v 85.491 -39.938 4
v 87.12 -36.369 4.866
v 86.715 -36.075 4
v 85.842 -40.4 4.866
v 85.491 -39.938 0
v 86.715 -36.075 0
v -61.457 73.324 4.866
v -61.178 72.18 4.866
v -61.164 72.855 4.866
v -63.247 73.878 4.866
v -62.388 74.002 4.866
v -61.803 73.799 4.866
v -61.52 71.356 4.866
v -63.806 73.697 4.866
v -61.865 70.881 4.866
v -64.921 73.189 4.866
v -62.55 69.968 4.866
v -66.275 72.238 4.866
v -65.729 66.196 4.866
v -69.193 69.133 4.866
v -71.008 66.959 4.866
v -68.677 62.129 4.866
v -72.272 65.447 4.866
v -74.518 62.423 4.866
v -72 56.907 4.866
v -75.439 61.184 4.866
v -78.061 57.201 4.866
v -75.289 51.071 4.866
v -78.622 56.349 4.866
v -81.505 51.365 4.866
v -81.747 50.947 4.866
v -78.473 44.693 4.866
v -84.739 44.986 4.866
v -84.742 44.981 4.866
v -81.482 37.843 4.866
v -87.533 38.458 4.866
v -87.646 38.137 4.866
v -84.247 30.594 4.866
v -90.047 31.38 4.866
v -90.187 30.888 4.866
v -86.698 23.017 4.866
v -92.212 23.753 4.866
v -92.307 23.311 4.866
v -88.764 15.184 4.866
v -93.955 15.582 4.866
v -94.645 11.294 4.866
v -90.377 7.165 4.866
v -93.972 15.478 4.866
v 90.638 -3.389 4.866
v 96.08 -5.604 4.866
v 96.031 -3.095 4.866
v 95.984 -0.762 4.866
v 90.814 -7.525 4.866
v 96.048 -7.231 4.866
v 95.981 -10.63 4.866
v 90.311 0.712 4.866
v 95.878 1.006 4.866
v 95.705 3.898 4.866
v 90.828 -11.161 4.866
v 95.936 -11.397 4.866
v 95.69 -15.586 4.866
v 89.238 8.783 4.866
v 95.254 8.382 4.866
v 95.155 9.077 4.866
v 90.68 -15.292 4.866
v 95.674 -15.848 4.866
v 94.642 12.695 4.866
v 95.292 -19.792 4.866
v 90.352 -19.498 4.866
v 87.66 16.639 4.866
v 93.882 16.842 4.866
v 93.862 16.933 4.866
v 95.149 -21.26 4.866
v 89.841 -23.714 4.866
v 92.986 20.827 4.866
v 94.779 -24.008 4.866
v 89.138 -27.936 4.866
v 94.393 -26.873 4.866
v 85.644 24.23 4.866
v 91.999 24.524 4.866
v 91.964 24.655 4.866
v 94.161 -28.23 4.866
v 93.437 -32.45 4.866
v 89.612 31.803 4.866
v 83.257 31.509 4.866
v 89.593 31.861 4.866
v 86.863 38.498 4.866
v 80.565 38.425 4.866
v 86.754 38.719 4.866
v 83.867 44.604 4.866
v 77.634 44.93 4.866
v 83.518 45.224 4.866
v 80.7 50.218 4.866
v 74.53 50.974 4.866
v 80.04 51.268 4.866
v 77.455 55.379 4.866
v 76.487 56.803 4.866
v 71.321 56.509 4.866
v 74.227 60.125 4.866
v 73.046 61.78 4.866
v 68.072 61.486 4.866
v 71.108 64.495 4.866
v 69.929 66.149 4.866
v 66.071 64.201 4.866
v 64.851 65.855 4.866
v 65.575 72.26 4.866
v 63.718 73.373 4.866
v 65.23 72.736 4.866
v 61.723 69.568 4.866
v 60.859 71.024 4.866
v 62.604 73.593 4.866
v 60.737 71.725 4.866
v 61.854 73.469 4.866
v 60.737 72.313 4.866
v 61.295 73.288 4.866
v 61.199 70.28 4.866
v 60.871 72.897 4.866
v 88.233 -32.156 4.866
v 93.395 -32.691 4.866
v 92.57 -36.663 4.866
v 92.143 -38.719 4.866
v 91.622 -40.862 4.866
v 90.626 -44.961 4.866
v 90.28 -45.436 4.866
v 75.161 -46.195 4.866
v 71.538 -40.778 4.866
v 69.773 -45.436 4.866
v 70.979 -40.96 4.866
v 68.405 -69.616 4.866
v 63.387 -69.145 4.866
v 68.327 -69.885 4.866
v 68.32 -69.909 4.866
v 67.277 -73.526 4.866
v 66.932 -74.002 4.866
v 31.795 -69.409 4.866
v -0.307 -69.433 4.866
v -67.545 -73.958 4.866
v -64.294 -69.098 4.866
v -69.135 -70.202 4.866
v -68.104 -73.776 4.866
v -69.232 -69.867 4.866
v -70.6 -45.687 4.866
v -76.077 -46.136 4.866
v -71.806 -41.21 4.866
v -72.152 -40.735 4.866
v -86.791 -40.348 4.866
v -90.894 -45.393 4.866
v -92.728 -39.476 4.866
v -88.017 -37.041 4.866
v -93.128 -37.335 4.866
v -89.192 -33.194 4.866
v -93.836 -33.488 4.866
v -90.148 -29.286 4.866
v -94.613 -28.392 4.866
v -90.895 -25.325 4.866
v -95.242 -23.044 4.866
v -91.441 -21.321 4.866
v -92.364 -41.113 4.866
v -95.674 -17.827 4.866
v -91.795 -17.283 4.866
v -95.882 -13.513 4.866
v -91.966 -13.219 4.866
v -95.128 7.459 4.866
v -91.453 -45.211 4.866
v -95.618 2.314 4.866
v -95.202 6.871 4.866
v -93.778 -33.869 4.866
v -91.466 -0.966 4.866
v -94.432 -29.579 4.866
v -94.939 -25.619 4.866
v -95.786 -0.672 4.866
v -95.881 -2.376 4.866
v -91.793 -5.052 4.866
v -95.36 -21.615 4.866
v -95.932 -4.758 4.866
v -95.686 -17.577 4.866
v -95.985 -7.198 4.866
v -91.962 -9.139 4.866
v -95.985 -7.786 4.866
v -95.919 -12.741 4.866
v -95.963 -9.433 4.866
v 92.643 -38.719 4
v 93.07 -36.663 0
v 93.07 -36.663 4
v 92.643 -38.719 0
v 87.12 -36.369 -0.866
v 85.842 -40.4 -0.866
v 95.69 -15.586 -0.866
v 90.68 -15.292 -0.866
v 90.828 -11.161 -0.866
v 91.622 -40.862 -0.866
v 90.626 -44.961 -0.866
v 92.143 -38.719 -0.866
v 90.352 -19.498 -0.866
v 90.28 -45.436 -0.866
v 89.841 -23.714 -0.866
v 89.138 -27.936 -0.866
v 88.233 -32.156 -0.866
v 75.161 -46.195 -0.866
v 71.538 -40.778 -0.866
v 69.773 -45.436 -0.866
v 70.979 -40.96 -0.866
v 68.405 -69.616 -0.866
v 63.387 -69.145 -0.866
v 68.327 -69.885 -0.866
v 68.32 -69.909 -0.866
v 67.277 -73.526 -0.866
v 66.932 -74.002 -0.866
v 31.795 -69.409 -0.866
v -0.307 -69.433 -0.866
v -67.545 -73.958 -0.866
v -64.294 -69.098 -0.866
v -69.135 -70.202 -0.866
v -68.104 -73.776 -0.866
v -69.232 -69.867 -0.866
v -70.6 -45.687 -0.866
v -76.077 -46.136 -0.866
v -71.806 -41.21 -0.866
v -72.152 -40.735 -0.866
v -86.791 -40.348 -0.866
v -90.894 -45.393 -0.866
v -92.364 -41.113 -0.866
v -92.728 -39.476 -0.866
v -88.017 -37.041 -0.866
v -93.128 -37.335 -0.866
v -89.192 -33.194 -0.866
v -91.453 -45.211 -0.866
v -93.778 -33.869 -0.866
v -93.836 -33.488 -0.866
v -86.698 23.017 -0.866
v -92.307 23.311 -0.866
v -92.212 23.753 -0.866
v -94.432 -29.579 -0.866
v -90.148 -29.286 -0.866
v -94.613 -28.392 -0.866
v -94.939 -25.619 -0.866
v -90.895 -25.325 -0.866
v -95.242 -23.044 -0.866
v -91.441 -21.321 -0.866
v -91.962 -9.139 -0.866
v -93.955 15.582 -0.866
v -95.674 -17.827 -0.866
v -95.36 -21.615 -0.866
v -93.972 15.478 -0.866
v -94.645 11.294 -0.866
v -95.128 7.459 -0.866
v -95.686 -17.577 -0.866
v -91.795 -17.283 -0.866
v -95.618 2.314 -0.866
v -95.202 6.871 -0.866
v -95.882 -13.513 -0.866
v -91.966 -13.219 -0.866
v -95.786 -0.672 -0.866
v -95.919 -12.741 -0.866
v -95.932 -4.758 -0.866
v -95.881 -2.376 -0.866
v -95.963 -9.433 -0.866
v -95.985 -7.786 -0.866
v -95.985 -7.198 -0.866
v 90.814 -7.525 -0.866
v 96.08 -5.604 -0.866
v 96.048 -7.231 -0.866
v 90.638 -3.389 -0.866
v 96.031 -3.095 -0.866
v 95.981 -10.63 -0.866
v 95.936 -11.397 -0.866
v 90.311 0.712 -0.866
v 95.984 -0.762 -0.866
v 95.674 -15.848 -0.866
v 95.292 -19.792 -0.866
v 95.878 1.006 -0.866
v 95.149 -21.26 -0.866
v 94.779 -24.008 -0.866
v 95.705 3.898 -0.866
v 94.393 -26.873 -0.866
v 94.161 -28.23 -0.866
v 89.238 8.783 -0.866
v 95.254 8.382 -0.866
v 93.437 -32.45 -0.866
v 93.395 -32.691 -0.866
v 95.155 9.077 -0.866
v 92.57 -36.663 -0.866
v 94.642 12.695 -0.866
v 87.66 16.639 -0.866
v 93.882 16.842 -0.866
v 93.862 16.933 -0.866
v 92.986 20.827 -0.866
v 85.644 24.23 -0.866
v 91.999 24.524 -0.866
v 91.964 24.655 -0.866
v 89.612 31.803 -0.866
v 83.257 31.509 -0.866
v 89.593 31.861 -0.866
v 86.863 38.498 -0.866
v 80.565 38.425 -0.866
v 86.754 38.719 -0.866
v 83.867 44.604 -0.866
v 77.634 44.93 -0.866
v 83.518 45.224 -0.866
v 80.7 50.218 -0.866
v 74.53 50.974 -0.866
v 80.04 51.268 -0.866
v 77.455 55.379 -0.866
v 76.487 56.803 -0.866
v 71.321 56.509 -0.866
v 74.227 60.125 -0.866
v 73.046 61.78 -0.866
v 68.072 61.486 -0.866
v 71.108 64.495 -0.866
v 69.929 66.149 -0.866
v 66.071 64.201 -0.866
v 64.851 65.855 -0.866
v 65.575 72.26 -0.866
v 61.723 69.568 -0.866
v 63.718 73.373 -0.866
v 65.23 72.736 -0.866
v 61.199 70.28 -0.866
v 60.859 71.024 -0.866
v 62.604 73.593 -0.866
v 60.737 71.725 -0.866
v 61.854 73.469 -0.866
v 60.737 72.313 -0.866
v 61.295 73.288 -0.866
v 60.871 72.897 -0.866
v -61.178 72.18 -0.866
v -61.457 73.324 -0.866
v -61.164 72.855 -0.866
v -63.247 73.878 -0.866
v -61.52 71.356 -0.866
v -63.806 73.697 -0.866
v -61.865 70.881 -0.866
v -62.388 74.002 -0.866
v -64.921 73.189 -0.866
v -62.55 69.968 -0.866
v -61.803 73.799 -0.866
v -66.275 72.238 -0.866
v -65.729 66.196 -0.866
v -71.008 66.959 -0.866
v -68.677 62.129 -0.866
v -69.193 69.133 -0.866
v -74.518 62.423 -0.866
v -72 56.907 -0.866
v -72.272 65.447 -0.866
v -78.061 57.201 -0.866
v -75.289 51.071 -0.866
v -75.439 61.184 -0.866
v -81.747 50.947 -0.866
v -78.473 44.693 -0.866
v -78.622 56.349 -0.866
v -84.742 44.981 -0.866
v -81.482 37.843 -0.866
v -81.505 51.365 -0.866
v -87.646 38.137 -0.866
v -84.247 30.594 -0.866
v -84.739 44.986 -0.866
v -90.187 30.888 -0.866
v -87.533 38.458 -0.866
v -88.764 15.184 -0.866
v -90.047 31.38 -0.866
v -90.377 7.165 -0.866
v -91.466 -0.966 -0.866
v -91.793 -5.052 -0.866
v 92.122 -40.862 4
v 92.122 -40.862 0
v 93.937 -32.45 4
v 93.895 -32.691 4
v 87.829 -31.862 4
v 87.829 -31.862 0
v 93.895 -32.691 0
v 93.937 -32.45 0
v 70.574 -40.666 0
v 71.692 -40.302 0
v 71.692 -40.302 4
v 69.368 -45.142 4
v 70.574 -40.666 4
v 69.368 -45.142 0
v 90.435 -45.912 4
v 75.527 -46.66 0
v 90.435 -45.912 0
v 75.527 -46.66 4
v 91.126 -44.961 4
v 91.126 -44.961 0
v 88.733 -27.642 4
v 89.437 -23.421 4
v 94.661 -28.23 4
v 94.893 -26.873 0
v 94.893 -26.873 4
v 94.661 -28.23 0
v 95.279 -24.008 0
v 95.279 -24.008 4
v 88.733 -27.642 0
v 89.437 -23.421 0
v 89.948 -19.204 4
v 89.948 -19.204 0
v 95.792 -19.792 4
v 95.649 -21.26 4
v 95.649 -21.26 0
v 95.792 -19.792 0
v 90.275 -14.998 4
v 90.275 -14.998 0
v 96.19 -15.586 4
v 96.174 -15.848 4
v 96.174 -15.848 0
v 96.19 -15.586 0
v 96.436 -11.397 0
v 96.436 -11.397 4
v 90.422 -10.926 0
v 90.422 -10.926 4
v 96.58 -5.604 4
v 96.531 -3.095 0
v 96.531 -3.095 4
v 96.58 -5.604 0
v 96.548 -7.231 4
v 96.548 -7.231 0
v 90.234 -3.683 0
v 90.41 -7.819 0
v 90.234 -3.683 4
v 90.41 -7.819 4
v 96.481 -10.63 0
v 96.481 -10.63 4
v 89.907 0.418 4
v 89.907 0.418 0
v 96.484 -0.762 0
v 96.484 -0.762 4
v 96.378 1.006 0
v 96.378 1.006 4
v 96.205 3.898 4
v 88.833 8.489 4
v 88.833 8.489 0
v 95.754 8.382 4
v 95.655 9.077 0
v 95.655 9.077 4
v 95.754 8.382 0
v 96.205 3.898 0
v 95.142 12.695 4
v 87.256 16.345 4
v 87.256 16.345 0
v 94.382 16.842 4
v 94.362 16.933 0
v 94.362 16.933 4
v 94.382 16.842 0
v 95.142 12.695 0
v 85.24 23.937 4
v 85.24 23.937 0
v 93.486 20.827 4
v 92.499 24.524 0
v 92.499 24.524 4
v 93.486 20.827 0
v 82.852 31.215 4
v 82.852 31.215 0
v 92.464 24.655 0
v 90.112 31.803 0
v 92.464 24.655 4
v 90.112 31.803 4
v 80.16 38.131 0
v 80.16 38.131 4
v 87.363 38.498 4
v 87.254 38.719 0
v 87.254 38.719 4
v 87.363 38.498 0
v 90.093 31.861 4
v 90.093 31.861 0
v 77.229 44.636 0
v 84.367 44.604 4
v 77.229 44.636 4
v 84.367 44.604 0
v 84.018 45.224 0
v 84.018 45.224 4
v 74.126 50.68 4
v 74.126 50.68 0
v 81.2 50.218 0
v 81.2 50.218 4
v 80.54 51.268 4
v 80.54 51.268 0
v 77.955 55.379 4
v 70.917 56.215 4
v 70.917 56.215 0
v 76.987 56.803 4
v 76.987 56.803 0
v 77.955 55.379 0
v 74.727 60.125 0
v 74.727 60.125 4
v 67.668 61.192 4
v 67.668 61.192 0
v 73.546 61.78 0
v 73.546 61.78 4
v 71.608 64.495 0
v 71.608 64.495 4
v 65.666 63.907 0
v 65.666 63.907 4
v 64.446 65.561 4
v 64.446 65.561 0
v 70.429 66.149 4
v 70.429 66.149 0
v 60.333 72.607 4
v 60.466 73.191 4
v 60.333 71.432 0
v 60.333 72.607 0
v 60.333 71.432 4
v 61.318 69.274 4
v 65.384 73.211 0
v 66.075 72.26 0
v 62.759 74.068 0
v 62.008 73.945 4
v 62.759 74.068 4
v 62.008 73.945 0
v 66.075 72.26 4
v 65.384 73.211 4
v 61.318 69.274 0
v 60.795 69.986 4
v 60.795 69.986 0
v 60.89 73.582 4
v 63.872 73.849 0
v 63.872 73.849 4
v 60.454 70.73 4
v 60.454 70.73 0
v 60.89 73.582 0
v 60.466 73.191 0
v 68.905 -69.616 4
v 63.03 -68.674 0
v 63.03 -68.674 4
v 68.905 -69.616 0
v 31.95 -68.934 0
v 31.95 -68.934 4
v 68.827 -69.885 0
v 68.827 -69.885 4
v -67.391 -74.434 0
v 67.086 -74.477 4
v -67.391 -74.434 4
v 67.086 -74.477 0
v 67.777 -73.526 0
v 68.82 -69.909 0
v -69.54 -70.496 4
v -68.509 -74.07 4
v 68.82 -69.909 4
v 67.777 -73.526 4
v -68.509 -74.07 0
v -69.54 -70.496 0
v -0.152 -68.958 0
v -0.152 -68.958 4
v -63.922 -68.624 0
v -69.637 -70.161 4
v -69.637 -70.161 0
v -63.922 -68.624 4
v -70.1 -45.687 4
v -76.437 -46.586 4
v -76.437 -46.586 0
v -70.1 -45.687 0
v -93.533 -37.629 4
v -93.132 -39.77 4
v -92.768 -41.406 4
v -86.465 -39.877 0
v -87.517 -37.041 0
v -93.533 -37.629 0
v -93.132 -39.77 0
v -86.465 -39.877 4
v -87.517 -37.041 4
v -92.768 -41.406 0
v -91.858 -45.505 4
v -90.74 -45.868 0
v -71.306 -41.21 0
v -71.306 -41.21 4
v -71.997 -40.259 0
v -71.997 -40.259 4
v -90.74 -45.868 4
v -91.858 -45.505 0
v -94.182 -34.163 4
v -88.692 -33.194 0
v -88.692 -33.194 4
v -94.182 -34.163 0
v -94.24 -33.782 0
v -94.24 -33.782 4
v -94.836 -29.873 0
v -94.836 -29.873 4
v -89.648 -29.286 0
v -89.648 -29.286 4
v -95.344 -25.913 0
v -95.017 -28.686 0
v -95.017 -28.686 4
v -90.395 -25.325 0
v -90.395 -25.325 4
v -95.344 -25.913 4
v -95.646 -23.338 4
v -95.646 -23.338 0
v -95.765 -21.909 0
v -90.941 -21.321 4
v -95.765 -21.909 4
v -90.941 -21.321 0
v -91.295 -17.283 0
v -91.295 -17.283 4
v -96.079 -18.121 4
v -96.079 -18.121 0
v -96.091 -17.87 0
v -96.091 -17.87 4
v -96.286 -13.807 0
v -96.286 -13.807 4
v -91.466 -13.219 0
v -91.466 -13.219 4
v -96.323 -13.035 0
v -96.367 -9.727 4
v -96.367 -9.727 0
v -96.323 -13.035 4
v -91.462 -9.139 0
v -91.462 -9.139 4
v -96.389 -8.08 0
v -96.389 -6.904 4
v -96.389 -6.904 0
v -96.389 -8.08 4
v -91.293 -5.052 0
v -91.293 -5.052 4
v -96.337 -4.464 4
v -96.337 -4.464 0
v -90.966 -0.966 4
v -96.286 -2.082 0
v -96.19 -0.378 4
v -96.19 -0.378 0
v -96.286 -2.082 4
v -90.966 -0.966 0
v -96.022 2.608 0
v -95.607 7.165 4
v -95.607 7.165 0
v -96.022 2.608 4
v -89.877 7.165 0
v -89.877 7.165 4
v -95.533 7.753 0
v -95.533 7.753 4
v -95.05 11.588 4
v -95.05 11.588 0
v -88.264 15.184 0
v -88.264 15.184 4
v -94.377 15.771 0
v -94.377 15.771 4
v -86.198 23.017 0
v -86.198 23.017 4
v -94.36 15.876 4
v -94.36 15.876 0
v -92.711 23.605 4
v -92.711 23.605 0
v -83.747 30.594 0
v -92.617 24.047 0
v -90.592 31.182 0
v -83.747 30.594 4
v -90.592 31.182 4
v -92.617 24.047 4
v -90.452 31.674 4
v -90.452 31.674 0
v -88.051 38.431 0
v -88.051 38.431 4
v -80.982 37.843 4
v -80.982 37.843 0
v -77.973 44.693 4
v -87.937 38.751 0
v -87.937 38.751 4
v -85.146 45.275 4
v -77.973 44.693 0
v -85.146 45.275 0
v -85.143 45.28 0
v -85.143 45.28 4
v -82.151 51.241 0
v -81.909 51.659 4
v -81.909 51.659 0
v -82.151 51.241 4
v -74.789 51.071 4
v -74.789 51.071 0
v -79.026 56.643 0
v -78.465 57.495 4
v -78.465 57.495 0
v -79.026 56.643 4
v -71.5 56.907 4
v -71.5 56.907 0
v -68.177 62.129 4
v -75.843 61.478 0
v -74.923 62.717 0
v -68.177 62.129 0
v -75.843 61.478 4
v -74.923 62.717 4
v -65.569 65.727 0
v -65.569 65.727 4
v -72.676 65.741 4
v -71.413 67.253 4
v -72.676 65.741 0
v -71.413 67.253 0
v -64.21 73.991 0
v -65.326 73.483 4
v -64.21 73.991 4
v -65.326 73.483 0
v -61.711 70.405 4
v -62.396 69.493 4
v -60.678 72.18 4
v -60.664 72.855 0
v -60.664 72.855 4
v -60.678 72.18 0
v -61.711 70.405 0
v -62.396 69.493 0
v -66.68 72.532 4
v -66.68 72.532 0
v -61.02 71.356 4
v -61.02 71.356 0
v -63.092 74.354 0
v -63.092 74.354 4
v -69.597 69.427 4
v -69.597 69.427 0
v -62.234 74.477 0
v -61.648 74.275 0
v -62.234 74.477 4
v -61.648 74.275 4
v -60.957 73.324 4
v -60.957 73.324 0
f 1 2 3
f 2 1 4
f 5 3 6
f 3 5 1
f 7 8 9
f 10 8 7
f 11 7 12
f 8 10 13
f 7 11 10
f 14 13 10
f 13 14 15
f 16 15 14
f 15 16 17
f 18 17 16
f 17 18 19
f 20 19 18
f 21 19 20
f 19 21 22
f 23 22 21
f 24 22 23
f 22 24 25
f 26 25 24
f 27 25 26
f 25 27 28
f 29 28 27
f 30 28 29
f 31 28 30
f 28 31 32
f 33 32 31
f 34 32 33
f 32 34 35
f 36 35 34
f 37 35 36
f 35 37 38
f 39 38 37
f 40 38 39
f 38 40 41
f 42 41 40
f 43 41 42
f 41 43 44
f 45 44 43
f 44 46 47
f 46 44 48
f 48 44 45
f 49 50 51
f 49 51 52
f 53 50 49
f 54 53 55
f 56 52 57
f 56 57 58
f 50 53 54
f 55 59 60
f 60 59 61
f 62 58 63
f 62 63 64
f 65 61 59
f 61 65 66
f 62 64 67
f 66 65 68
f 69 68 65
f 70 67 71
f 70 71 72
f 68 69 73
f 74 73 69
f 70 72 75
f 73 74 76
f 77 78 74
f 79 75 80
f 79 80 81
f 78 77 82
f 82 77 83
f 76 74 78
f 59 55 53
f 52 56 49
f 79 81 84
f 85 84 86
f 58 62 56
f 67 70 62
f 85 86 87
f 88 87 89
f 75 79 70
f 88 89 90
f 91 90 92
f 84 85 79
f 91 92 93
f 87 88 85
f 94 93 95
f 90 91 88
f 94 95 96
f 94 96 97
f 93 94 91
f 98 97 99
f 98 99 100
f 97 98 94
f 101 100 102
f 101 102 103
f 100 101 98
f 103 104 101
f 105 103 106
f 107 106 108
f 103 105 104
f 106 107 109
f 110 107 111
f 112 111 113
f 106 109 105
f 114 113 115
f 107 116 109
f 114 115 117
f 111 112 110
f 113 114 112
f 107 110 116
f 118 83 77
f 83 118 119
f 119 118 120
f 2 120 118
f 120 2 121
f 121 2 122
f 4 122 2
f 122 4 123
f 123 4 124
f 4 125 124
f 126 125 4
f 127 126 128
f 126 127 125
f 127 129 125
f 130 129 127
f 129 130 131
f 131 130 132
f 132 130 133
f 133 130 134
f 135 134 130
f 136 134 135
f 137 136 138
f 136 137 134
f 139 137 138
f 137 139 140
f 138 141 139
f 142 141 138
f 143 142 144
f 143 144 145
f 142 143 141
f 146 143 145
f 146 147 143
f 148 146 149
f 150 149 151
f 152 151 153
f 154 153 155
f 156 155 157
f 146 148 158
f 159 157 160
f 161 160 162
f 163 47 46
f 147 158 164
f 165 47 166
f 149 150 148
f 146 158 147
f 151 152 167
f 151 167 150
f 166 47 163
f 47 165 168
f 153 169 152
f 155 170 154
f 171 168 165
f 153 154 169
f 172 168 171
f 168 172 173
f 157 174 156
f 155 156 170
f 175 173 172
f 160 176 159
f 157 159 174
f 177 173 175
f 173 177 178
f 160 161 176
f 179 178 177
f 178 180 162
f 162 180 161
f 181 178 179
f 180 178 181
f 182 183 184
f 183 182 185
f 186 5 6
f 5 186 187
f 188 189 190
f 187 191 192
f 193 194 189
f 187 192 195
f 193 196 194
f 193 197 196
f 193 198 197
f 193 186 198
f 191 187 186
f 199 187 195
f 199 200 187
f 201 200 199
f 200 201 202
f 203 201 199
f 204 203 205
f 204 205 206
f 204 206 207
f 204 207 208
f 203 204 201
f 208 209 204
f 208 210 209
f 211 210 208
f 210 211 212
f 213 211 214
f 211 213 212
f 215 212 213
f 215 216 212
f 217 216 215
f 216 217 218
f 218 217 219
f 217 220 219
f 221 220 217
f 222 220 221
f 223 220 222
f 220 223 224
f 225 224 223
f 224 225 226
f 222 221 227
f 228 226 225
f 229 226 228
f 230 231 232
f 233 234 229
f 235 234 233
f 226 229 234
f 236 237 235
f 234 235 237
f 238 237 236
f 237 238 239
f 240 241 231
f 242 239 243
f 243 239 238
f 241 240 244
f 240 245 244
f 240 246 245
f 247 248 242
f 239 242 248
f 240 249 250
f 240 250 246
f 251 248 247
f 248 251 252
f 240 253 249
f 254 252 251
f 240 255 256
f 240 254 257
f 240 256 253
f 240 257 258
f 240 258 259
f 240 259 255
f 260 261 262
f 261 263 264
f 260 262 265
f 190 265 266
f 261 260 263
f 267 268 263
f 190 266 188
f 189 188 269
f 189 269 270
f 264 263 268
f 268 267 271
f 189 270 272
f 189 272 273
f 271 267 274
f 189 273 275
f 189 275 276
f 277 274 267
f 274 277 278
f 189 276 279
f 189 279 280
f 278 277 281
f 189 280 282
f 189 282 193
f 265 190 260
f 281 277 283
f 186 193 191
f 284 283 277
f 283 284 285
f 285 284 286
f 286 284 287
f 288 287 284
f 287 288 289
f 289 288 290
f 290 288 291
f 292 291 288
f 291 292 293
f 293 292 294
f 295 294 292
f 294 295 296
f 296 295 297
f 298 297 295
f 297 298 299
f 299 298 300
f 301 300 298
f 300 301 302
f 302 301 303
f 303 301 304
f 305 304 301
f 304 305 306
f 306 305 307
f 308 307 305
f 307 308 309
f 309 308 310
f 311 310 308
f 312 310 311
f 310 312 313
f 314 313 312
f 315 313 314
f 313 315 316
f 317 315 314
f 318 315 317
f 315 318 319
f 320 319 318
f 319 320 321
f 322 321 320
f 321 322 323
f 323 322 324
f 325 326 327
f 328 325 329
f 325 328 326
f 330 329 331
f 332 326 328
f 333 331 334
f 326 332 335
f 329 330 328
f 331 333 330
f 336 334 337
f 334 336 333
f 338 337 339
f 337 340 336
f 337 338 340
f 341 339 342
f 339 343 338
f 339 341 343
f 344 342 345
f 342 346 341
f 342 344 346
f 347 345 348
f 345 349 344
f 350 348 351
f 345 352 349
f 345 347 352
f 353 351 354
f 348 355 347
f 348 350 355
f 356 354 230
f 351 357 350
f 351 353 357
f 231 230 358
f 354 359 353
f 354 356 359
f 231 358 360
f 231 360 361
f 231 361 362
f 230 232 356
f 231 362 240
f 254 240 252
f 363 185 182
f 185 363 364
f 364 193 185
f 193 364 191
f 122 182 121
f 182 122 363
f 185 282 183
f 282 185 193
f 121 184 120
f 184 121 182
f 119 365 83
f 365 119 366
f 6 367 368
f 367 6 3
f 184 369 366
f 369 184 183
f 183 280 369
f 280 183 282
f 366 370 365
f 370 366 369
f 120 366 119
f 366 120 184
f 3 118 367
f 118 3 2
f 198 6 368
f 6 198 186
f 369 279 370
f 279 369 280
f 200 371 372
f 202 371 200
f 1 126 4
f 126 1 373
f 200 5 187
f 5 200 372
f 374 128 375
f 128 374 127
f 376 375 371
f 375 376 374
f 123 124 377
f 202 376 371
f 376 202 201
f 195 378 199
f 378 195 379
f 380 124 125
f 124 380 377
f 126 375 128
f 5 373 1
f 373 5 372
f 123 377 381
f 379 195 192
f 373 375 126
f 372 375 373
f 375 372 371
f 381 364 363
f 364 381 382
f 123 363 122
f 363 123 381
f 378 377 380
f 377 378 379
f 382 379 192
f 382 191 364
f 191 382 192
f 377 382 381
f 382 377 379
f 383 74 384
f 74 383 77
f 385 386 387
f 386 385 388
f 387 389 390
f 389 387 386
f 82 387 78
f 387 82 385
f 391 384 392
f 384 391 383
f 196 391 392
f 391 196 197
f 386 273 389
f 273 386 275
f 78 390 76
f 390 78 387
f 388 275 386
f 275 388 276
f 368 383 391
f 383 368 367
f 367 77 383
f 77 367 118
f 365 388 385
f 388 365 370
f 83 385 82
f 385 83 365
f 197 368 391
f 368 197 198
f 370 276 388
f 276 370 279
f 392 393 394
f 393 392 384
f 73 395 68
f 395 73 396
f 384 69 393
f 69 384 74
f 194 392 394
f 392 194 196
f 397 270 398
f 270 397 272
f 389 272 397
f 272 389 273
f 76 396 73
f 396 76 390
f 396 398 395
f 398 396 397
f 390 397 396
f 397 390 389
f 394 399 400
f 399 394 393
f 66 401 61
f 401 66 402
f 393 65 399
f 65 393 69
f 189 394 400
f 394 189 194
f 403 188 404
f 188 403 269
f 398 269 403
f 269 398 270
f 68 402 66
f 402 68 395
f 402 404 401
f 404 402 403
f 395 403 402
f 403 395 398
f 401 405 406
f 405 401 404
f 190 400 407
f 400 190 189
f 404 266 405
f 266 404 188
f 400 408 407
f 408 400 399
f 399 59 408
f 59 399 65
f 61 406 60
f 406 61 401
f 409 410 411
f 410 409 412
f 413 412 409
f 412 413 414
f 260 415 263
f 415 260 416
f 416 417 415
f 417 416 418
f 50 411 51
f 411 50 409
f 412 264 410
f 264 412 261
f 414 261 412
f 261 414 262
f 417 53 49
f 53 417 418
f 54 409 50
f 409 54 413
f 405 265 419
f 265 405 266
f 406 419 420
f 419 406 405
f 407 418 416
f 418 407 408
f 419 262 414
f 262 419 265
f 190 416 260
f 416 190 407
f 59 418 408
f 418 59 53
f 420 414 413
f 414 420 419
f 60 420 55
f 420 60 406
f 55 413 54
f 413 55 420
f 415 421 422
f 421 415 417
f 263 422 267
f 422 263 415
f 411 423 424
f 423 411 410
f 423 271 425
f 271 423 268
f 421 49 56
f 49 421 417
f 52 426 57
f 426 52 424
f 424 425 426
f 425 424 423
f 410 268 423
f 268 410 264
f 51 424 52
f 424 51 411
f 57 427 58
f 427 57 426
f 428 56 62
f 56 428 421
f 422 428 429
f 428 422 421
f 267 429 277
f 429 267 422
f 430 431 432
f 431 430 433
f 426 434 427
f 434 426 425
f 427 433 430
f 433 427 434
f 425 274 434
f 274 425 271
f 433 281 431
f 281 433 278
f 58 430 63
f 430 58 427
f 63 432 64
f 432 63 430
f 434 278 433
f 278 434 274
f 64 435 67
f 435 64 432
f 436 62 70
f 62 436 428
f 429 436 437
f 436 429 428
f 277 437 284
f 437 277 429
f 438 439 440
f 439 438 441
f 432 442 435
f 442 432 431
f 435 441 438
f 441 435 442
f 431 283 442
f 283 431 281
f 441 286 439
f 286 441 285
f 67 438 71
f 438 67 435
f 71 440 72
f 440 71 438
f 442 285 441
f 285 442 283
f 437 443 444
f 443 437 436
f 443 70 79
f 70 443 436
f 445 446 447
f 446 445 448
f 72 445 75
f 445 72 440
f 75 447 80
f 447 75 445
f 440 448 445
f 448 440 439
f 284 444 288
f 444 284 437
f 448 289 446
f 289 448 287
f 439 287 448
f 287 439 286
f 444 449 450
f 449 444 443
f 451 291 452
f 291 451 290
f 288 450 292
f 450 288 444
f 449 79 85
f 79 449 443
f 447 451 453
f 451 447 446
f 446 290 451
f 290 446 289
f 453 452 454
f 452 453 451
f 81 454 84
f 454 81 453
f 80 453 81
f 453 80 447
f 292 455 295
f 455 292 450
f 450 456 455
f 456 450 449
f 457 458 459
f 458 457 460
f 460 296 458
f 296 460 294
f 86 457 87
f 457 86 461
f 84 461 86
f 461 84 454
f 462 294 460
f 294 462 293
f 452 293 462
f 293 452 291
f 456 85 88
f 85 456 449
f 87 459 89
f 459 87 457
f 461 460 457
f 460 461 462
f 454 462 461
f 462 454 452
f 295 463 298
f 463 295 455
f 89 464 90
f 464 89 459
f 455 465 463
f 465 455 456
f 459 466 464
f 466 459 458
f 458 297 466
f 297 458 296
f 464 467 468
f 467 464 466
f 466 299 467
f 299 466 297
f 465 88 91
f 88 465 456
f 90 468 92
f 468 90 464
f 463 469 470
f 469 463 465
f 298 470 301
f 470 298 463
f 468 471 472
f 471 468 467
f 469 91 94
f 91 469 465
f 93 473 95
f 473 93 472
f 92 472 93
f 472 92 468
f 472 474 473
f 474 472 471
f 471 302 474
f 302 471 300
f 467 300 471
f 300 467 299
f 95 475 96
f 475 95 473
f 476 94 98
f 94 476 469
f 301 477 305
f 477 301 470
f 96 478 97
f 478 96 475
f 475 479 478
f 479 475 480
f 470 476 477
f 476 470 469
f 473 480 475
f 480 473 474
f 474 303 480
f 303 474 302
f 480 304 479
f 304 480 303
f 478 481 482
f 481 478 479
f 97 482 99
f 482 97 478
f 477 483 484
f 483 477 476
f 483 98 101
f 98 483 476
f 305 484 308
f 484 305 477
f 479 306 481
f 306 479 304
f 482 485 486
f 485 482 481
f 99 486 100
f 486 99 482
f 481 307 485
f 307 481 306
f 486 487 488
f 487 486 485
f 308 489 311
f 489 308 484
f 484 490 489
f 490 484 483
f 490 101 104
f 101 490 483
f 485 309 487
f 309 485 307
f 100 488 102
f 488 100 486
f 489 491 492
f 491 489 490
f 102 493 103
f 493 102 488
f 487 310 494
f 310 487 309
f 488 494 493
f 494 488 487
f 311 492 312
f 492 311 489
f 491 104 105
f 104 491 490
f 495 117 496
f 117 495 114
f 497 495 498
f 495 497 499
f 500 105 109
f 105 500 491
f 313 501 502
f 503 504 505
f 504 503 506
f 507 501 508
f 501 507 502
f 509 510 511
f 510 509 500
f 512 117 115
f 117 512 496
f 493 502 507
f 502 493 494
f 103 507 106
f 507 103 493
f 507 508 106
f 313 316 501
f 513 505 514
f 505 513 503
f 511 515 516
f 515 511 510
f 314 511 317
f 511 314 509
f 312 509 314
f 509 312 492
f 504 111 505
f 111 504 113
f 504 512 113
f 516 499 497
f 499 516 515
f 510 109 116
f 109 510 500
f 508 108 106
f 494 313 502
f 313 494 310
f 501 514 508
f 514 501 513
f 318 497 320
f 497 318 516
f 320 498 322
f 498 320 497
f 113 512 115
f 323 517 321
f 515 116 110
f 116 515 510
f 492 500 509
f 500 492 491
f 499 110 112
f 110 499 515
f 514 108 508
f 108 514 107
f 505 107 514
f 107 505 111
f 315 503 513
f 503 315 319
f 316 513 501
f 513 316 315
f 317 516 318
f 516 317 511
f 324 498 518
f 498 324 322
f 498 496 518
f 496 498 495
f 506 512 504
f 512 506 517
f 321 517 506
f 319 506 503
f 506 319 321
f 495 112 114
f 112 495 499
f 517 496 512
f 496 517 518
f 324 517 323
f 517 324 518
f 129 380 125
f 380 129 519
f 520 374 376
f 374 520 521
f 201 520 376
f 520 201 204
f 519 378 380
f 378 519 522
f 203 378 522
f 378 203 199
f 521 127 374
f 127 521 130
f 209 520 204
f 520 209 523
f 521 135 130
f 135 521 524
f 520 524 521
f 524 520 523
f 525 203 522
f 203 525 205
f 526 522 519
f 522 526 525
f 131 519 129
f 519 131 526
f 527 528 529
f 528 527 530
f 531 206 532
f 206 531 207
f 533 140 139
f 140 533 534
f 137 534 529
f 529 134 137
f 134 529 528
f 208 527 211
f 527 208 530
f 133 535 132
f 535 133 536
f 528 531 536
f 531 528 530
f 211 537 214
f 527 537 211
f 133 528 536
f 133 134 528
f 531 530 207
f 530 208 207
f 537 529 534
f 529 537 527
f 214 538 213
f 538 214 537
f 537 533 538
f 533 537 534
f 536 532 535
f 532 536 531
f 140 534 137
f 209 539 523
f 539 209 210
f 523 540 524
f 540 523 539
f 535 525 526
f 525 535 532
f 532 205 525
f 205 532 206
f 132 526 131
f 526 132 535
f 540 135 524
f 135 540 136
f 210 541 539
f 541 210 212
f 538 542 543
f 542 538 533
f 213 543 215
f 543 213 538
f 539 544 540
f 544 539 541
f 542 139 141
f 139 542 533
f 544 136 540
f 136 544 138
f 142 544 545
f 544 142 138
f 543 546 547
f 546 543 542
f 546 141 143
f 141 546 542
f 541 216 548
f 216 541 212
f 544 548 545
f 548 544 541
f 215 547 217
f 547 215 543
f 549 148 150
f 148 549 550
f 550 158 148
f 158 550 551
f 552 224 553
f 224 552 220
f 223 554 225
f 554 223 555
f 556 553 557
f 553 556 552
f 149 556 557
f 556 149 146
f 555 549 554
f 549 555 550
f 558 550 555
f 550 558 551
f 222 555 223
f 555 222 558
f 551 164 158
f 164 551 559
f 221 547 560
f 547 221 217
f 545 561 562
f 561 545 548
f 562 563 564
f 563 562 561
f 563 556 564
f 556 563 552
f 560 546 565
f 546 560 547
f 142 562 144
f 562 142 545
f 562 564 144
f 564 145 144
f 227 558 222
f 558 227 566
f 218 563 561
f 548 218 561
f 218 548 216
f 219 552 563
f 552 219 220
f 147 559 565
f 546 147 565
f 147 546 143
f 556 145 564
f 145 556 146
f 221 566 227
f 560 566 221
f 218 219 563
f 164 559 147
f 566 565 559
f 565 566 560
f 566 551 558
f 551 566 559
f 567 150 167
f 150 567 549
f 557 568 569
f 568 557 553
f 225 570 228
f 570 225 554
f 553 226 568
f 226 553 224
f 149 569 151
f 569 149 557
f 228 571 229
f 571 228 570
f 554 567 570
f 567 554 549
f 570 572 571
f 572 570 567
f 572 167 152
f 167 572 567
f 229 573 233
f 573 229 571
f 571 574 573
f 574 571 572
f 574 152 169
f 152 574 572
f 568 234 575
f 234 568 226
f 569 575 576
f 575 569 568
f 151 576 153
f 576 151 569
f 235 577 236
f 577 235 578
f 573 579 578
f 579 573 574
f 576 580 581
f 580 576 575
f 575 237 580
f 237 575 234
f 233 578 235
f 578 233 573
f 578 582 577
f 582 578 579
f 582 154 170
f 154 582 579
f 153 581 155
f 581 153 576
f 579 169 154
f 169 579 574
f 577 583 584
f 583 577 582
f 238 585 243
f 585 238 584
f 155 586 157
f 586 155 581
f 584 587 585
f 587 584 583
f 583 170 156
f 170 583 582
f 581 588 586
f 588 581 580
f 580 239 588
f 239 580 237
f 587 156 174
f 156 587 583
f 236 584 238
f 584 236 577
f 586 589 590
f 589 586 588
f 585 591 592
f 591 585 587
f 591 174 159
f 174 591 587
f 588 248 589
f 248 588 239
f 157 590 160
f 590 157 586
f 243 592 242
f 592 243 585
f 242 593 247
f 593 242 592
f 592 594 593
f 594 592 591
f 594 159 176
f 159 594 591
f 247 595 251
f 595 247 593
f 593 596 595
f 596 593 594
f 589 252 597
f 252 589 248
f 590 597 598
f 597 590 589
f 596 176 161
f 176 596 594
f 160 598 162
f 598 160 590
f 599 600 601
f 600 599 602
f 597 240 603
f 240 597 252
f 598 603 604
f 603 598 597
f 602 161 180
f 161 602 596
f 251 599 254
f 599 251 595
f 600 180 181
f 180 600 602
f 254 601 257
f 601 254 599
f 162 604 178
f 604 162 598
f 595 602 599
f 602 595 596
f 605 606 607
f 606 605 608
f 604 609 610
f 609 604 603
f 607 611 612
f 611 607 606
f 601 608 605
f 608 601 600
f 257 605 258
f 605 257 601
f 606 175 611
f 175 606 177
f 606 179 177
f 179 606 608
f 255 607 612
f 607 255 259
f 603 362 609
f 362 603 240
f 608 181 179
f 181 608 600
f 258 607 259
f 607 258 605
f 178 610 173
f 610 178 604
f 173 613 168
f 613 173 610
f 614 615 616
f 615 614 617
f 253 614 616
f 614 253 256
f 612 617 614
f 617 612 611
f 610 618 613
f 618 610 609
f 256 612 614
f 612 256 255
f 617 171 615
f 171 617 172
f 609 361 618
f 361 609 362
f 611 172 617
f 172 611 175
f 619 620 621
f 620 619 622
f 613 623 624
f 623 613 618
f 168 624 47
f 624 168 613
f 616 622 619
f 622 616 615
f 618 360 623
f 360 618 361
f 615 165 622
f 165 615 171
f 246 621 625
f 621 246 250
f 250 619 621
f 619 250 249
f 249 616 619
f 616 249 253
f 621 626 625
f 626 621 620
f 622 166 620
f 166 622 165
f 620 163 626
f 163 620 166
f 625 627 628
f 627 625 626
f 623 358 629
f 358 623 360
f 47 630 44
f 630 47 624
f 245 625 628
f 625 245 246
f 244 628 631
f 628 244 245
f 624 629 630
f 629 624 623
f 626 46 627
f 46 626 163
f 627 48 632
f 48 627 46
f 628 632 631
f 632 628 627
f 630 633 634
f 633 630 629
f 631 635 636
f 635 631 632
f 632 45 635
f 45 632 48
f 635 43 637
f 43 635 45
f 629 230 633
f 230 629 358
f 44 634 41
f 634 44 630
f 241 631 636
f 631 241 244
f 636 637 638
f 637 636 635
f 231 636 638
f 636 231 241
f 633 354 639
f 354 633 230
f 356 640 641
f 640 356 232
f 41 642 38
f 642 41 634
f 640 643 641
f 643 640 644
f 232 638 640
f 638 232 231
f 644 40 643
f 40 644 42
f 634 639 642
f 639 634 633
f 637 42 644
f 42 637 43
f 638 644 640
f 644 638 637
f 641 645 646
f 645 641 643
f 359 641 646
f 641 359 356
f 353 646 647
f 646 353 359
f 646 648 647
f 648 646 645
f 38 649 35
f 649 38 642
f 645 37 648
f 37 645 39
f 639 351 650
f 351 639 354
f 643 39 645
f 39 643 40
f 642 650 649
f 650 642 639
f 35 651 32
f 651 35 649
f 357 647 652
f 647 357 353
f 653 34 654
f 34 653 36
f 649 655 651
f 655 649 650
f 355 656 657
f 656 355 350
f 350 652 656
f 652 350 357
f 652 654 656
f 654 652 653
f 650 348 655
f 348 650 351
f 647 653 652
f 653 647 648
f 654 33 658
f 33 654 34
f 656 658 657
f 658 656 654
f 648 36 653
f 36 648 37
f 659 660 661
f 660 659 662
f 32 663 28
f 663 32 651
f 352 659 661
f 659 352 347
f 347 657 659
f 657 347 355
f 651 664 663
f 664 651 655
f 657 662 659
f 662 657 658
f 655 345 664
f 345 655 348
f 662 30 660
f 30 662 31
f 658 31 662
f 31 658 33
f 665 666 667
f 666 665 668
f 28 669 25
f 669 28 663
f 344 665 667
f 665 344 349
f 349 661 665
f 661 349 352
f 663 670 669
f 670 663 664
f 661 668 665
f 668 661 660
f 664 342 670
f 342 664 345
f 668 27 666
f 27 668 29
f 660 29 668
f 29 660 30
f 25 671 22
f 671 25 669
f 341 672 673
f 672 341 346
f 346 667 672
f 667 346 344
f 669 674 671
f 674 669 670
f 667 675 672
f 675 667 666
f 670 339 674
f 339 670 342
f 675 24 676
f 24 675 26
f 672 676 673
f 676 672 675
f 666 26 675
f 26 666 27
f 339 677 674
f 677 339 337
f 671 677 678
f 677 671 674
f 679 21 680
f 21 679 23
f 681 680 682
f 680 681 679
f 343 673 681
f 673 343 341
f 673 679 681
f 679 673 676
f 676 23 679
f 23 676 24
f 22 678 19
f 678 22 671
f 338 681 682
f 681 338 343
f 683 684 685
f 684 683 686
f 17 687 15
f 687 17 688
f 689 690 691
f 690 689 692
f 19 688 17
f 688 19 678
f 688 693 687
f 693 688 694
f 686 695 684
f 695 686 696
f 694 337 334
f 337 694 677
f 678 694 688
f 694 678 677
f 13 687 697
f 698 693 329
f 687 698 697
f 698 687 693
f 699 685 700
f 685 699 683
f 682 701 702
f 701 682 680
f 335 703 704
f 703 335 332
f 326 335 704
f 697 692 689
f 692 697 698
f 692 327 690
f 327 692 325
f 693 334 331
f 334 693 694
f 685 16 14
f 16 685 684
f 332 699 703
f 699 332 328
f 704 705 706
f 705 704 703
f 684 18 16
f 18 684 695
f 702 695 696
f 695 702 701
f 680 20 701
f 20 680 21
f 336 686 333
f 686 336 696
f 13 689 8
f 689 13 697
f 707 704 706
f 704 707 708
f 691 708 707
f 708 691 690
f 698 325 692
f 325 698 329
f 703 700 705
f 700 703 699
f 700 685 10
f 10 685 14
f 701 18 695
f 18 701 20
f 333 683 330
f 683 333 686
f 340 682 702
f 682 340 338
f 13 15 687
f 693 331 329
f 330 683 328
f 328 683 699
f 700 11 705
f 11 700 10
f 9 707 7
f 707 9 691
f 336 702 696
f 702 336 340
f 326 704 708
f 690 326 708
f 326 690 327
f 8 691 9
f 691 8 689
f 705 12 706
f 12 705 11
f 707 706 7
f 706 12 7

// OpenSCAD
// Module names are of the form poly_<inkscape-path-id>().  As a result,
// you can associate a polygon in this OpenSCAD program with the corresponding
// SVG element in the Inkscape document by looking for the XML element with
// the attribute id="inkscape-path-id".

// fudge value is used to ensure that subtracted solids are a tad taller
// in the z dimension than the polygon being subtracted from.  This helps
// keep the resulting .stl file manifold.
fudge = 0.1;

module poly_path389047(h)
{
  //scale([25.4/90, -25.4/90, 1]) union()
  {
    linear_extrude(height=h)
      polygon([[-64.666156,-69.572941],[-72.306264,-41.210110],[-87.115855,-40.818693],[-88.517178,-37.041371],[-89.691618,-33.193990],[-90.647899,-29.285495],[-91.394749,-25.324829],[-91.940893,-21.320935],[-92.295057,-17.282758],[-92.465967,-13.219240],[-92.462349,-9.139326],[-92.292929,-5.051959],[-91.966433,-0.966084],[-90.877115,7.165420],[-89.264204,15.183636],[-87.197505,23.017014],[-84.746828,30.594005],[-81.981979,37.843060],[-78.972765,44.692629],[-75.788995,51.071163],[-72.500474,56.907113],[-69.177011,62.128928],[-65.888414,66.665060],[-62.704488,70.443958],[-62.019617,71.356243],[-61.678468,72.179742],[-61.663554,72.855304],[-61.957393,73.323776],[-62.542498,73.526007],[-63.401385,73.402843],[-64.516570,72.895135],[-65.870568,71.943728],[-68.788092,68.839026],[-71.867010,65.152984],[-75.034339,60.890201],[-78.217099,56.055274],[-81.342309,50.652802],[-84.336986,44.687383],[-87.128149,38.163614],[-89.642817,31.086094],[-91.808008,23.459421],[-93.550742,15.288192],[-94.240880,10.999807],[-94.798035,6.577006],[-95.213085,2.020367],[-95.476908,-2.669538],[-95.580379,-7.492134],[-95.514378,-12.446844],[-95.269780,-17.533096],[-94.837464,-22.750313],[-94.208306,-28.097922],[-93.373184,-33.575347],[-92.322976,-39.182014],[-91.048558,-44.917349],[-75.717862,-45.686736],[-67.699777,-73.482607],[66.776952,-73.526007],[74.795022,-45.730136],[90.125722,-44.960749],[91.643366,-38.718567],[92.895330,-32.691002],[93.893342,-26.873229],[94.649126,-21.260428],[95.174410,-15.847774],[95.480919,-10.630446],[95.580379,-5.603620],[95.484518,-0.762473],[95.205060,3.897817],[94.753732,8.382073],[94.142260,12.695118],[93.382370,16.841775],[92.485789,20.826865],[91.464243,24.655213],[89.093158,31.860971],[86.362926,38.497631],[83.367355,44.603775],[80.200255,50.217984],[76.955435,55.378842],[73.726705,60.124930],[70.607873,64.494831],[65.075142,72.260398],[63.563202,72.897572],[62.449849,73.117045],[61.699140,72.993818],[61.275129,72.602893],[61.141874,72.019271],[61.263431,71.317952],[61.603855,70.573938],[62.127202,69.862228],[65.255387,66.149200],[68.476987,61.779795],[71.725581,56.803029],[74.934752,51.267920],[78.038078,45.223485],[80.969141,38.718740],[83.661521,31.802701],[86.048799,24.524386],[88.064556,16.932811],[89.642371,9.076993],[90.715826,1.005949],[91.042662,-3.094965],[91.218501,-7.231305],[91.235040,-11.396943],[91.083976,-15.585752],[90.757008,-19.791605],[90.245833,-24.008375],[89.542148,-28.229935],[88.637651,-32.450157],[87.524040,-36.662916],[86.193012,-40.862083],[71.383432,-41.253500],[63.743332,-69.616331],[31.640651,-69.884963],[-0.461457,-69.908560],[-64.666156,-69.572931]]);
  }
}
minkowski(){
poly_path389047(4);
sphere(d=2);
}
